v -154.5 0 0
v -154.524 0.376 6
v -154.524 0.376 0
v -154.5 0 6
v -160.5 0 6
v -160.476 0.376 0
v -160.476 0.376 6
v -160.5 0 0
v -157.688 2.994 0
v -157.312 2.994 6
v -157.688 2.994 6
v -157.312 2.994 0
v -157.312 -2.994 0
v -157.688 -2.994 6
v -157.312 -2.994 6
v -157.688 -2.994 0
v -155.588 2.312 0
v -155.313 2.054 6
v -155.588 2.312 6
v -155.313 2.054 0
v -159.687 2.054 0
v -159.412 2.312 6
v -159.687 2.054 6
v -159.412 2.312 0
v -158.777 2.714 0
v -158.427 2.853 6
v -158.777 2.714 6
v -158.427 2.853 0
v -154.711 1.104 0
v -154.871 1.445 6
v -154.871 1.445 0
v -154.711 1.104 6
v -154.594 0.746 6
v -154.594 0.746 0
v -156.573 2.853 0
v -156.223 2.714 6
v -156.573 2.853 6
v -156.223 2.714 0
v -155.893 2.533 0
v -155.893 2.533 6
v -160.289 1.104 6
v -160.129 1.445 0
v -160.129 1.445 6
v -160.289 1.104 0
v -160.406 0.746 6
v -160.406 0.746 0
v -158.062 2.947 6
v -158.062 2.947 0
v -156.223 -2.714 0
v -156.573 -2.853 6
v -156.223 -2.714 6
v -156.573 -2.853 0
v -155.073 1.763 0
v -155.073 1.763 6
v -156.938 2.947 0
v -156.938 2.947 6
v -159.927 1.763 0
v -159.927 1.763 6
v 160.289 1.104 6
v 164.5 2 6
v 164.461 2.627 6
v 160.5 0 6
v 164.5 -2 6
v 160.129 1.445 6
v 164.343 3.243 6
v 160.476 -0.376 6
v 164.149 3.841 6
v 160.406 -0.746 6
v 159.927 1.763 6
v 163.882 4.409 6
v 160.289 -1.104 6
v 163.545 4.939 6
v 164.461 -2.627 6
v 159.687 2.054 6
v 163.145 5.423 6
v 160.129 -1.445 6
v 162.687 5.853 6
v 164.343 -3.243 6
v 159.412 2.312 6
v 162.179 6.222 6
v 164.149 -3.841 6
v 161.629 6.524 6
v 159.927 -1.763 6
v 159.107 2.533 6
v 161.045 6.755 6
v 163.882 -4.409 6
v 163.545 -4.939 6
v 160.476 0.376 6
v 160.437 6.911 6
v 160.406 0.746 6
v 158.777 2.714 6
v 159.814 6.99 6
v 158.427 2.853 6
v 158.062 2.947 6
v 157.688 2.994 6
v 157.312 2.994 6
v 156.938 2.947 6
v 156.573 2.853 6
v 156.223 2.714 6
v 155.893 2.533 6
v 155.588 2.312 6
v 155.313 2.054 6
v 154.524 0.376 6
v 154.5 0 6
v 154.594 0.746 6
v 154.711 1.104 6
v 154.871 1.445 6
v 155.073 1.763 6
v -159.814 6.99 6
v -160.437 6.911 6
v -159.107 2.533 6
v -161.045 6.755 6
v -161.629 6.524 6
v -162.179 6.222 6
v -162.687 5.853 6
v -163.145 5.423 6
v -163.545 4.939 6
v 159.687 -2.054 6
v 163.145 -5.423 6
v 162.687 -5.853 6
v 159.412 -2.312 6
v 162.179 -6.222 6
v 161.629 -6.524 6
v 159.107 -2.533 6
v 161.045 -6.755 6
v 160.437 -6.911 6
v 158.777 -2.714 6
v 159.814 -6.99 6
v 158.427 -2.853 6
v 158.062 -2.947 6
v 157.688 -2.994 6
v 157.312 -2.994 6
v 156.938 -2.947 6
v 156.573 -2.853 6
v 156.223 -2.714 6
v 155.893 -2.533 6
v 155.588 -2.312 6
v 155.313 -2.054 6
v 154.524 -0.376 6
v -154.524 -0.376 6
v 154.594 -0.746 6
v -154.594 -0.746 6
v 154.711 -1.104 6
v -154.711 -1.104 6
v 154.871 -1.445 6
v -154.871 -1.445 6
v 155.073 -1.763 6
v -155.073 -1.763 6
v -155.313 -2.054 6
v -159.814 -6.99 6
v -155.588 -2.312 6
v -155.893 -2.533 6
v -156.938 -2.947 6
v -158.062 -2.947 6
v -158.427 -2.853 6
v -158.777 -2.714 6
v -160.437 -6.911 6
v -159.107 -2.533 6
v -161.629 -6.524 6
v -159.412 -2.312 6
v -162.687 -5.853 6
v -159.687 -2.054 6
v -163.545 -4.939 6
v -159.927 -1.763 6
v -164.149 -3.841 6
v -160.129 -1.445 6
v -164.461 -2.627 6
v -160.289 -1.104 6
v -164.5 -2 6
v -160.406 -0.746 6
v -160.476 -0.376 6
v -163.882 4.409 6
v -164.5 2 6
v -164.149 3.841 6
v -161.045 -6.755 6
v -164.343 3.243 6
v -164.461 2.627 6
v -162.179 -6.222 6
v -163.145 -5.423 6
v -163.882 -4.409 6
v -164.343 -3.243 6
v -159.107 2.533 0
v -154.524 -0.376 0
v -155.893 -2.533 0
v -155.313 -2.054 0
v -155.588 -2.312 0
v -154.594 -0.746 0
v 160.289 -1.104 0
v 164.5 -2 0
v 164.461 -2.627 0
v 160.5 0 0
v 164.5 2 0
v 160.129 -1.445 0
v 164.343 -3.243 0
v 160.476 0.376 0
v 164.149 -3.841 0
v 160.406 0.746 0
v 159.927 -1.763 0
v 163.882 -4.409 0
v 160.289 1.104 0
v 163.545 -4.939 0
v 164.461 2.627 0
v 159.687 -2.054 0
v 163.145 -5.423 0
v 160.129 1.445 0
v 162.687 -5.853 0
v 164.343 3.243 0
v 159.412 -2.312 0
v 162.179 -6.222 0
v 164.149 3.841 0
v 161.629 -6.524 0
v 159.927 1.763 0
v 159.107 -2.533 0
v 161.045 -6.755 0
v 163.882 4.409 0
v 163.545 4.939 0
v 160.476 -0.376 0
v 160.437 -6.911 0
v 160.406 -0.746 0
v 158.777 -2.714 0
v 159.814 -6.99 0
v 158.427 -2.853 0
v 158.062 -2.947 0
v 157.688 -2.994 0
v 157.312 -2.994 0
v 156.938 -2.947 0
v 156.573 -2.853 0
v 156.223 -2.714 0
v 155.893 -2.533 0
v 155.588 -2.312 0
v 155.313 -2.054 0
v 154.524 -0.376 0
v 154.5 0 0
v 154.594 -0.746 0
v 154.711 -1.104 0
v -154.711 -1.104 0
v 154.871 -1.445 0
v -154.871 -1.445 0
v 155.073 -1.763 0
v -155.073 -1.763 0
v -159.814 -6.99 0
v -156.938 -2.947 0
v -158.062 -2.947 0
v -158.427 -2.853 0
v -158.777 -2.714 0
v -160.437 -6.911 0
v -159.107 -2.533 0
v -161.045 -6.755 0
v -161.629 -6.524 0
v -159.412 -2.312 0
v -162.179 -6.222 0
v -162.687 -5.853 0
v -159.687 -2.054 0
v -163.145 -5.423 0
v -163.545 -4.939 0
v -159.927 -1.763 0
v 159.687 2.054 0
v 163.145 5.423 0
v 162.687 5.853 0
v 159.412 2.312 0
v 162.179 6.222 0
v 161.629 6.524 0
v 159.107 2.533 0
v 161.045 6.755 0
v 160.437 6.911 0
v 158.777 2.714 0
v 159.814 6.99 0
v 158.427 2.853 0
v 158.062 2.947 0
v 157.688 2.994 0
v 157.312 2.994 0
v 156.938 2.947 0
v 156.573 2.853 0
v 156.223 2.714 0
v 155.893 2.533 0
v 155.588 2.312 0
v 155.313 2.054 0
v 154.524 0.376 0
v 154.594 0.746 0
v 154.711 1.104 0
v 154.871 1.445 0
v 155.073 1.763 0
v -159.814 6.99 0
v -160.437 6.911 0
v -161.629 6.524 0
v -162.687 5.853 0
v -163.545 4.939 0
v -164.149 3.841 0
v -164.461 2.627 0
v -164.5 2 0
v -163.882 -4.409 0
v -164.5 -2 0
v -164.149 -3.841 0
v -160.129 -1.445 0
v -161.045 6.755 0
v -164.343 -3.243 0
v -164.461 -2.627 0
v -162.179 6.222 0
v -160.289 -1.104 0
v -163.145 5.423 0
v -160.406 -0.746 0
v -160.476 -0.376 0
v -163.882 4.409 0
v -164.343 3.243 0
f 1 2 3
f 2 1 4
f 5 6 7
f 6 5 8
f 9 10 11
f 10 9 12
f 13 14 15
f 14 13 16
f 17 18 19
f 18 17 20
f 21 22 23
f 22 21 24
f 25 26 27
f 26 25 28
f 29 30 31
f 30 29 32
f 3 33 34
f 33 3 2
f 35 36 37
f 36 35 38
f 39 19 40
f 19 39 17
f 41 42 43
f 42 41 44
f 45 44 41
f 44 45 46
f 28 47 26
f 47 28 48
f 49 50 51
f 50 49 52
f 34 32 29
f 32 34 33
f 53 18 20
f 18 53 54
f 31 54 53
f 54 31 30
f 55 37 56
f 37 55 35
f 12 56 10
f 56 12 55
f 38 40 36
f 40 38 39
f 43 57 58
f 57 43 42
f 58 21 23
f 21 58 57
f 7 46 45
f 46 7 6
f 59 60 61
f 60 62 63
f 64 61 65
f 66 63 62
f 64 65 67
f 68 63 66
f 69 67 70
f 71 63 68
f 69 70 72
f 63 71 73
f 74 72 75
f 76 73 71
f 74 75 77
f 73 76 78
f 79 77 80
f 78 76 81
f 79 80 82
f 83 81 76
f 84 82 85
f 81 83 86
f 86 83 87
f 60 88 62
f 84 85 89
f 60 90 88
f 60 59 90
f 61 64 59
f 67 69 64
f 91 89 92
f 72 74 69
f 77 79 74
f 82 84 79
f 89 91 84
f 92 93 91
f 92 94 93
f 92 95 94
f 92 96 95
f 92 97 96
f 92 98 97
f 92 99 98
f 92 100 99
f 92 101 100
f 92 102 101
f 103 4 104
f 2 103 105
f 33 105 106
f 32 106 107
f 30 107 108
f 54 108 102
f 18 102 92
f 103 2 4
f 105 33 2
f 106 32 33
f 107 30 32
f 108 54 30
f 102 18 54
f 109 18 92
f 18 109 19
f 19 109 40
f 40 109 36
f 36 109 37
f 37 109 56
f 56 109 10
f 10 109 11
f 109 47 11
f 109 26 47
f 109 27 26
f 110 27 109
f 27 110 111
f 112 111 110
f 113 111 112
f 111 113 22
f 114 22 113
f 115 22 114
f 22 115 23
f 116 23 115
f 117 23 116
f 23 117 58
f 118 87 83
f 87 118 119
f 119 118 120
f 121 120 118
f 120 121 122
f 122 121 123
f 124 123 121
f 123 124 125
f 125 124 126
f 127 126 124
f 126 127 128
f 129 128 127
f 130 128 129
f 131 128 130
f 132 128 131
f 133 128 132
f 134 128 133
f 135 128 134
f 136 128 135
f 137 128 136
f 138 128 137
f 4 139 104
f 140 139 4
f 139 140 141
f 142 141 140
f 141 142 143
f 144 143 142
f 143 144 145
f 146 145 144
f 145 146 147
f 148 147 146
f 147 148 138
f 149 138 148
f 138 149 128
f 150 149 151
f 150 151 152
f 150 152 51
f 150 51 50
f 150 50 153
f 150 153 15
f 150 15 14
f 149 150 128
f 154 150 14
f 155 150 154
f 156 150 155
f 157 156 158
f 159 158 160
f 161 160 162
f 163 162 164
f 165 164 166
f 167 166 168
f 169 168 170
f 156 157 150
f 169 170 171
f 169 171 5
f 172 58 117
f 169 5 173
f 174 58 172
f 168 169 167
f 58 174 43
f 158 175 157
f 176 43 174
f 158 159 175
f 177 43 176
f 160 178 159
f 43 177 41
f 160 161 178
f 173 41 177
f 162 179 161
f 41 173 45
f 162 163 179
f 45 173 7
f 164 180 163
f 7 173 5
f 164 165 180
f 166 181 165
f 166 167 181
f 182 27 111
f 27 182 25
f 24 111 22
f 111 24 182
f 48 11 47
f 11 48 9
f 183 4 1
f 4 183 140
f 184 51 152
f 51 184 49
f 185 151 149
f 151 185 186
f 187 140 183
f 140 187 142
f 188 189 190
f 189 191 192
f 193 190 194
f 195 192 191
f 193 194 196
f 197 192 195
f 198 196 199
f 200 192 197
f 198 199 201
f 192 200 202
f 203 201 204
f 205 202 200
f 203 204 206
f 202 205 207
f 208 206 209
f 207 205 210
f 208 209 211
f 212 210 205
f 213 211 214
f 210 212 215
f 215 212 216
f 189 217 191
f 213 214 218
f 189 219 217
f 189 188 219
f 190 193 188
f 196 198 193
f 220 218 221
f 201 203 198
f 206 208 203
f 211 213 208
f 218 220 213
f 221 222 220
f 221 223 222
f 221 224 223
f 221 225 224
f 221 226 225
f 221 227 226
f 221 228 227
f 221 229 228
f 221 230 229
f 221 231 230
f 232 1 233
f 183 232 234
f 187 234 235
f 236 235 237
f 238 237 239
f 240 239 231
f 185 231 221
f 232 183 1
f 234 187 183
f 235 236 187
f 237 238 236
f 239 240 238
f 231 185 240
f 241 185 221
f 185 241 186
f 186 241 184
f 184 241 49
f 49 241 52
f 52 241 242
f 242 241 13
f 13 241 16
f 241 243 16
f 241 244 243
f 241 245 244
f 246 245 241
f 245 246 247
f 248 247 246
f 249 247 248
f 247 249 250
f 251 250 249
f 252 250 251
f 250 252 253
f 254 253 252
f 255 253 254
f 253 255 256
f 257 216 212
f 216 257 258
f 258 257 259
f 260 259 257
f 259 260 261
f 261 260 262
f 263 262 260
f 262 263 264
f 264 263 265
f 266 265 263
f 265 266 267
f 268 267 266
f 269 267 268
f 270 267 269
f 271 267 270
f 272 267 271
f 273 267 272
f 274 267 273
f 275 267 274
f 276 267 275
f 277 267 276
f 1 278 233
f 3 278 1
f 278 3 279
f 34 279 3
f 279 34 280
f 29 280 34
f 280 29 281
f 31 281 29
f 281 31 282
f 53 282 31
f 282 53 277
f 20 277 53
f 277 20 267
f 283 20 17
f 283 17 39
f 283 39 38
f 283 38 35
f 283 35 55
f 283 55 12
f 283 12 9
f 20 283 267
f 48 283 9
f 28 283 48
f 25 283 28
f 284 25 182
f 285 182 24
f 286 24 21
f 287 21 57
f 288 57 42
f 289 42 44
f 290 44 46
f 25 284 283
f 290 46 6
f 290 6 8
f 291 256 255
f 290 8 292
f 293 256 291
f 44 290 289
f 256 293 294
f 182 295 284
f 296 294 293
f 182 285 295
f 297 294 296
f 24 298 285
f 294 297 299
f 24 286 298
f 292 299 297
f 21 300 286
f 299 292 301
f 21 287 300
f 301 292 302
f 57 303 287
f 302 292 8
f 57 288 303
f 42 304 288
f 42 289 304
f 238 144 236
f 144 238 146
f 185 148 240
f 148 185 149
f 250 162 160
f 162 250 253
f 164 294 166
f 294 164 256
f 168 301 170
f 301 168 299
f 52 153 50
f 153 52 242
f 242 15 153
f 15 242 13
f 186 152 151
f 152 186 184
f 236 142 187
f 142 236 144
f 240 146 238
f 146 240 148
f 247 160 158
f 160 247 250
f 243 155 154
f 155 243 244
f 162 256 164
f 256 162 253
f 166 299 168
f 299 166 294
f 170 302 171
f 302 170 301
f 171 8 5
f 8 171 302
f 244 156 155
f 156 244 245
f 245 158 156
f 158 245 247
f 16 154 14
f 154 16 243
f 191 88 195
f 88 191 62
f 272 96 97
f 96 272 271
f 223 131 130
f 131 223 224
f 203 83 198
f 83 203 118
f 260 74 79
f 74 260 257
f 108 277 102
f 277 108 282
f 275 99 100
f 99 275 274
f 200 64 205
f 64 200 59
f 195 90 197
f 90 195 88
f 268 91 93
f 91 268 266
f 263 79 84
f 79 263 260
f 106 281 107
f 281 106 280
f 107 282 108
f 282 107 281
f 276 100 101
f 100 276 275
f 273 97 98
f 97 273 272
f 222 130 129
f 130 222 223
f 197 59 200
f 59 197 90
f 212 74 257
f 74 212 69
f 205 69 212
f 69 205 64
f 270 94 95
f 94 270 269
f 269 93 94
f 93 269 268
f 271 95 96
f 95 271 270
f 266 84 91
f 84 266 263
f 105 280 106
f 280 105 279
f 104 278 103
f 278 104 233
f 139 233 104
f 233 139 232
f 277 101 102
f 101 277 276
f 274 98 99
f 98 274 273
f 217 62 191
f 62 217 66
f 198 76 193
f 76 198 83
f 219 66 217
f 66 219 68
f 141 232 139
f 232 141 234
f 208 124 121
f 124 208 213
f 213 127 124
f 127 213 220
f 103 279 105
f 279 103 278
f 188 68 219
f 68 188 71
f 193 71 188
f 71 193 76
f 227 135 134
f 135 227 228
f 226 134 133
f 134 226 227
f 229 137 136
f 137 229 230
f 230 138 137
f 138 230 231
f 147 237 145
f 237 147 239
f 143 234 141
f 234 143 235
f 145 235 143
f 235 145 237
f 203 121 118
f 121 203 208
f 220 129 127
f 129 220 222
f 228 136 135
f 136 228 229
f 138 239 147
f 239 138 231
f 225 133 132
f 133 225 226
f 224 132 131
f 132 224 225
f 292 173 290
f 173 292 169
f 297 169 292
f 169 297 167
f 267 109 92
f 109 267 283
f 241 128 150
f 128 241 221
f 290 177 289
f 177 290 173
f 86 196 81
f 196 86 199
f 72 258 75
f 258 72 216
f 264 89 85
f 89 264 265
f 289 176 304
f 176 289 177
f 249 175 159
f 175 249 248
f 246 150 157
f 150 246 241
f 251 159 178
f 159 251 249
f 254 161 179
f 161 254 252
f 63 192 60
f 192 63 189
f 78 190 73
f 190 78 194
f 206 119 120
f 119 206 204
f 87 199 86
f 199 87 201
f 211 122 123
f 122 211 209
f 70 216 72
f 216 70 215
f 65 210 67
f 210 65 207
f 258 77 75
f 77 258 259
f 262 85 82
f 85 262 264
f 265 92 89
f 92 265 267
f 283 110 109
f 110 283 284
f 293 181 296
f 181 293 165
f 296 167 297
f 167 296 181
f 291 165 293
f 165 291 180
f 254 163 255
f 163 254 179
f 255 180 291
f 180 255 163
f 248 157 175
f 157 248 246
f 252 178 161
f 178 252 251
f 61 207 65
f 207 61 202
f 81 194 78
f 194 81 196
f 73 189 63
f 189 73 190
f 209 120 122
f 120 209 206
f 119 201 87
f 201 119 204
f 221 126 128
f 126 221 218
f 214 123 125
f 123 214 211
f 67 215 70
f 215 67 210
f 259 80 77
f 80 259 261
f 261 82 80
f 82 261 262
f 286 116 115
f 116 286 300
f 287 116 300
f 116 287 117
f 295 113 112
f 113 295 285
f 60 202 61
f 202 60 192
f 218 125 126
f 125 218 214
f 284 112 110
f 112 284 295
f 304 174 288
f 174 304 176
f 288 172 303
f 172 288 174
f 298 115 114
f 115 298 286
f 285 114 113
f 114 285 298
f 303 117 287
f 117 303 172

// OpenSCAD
$fn = 50;


difference() {
	union() {
		hull() {
			translate(v = [-159.5000000000, 2.0000000000, 0]) {
				cylinder(h = 6, r = 5);
			}
			translate(v = [159.5000000000, 2.0000000000, 0]) {
				cylinder(h = 6, r = 5);
			}
			translate(v = [-159.5000000000, -2.0000000000, 0]) {
				cylinder(h = 6, r = 5);
			}
			translate(v = [159.5000000000, -2.0000000000, 0]) {
				cylinder(h = 6, r = 5);
			}
		}
	}
	union() {
		translate(v = [-157.5000000000, 0.0000000000, -100.0000000000]) {
			cylinder(h = 200, r = 3.0000000000);
		}
		translate(v = [-157.5000000000, 0.0000000000, -100.0000000000]) {
			cylinder(h = 200, r = 3.0000000000);
		}
		translate(v = [157.5000000000, 0.0000000000, -100.0000000000]) {
			cylinder(h = 200, r = 3.0000000000);
		}
		translate(v = [157.5000000000, 0.0000000000, -100.0000000000]) {
			cylinder(h = 200, r = 3.0000000000);
		}
	}
}
